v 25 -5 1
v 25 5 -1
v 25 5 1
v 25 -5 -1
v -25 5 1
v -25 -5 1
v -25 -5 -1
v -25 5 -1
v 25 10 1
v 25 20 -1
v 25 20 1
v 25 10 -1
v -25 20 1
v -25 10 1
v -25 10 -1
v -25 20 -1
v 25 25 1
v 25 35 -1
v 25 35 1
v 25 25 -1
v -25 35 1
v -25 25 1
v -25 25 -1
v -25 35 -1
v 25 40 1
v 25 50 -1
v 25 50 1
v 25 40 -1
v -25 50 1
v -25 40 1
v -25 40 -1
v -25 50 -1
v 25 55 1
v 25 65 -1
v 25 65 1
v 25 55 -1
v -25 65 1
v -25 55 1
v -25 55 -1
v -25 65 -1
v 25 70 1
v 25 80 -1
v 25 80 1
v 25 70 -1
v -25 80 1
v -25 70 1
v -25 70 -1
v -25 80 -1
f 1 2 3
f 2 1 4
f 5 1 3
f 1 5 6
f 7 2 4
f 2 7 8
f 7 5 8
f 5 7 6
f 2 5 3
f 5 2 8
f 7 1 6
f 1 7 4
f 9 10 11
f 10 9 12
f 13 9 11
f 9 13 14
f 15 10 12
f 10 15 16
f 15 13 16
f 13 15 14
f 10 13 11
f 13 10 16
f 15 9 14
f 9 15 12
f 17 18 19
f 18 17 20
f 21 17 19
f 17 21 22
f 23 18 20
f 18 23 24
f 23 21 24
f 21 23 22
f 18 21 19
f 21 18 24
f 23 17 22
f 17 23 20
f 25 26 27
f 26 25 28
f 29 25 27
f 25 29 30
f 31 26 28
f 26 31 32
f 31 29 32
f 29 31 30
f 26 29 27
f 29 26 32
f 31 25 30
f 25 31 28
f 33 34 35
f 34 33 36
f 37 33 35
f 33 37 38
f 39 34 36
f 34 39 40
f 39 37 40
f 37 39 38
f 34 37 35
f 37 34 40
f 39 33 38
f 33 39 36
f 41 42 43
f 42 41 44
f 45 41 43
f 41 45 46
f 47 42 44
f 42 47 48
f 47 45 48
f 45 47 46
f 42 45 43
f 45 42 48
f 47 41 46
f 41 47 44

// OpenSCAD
// Define the dimensions of the rectangular plate
plate_length = 50;  // Length of the plate
plate_width = 10;   // Width of the plate
plate_thickness = 2; // Thickness of the plate

// Define the spacing between plates
plate_spacing = 15; // Distance between adjacent plates

// Function to create a rectangular plate
module rectangular_plate() {
    cube([plate_length, plate_width, plate_thickness], center = true);
}

// Generate the 3D model with six rectangular plates
translate([0, 0, 0]) rectangular_plate(); // Plate 1
translate([0, plate_spacing, 0]) rectangular_plate(); // Plate 2
translate([0, 2 * plate_spacing, 0]) rectangular_plate(); // Plate 3
translate([0, 3 * plate_spacing, 0]) rectangular_plate(); // Plate 4
translate([0, 4 * plate_spacing, 0]) rectangular_plate(); // Plate 5
translate([0, 5 * plate_spacing, 0]) rectangular_plate(); // Plate 6
